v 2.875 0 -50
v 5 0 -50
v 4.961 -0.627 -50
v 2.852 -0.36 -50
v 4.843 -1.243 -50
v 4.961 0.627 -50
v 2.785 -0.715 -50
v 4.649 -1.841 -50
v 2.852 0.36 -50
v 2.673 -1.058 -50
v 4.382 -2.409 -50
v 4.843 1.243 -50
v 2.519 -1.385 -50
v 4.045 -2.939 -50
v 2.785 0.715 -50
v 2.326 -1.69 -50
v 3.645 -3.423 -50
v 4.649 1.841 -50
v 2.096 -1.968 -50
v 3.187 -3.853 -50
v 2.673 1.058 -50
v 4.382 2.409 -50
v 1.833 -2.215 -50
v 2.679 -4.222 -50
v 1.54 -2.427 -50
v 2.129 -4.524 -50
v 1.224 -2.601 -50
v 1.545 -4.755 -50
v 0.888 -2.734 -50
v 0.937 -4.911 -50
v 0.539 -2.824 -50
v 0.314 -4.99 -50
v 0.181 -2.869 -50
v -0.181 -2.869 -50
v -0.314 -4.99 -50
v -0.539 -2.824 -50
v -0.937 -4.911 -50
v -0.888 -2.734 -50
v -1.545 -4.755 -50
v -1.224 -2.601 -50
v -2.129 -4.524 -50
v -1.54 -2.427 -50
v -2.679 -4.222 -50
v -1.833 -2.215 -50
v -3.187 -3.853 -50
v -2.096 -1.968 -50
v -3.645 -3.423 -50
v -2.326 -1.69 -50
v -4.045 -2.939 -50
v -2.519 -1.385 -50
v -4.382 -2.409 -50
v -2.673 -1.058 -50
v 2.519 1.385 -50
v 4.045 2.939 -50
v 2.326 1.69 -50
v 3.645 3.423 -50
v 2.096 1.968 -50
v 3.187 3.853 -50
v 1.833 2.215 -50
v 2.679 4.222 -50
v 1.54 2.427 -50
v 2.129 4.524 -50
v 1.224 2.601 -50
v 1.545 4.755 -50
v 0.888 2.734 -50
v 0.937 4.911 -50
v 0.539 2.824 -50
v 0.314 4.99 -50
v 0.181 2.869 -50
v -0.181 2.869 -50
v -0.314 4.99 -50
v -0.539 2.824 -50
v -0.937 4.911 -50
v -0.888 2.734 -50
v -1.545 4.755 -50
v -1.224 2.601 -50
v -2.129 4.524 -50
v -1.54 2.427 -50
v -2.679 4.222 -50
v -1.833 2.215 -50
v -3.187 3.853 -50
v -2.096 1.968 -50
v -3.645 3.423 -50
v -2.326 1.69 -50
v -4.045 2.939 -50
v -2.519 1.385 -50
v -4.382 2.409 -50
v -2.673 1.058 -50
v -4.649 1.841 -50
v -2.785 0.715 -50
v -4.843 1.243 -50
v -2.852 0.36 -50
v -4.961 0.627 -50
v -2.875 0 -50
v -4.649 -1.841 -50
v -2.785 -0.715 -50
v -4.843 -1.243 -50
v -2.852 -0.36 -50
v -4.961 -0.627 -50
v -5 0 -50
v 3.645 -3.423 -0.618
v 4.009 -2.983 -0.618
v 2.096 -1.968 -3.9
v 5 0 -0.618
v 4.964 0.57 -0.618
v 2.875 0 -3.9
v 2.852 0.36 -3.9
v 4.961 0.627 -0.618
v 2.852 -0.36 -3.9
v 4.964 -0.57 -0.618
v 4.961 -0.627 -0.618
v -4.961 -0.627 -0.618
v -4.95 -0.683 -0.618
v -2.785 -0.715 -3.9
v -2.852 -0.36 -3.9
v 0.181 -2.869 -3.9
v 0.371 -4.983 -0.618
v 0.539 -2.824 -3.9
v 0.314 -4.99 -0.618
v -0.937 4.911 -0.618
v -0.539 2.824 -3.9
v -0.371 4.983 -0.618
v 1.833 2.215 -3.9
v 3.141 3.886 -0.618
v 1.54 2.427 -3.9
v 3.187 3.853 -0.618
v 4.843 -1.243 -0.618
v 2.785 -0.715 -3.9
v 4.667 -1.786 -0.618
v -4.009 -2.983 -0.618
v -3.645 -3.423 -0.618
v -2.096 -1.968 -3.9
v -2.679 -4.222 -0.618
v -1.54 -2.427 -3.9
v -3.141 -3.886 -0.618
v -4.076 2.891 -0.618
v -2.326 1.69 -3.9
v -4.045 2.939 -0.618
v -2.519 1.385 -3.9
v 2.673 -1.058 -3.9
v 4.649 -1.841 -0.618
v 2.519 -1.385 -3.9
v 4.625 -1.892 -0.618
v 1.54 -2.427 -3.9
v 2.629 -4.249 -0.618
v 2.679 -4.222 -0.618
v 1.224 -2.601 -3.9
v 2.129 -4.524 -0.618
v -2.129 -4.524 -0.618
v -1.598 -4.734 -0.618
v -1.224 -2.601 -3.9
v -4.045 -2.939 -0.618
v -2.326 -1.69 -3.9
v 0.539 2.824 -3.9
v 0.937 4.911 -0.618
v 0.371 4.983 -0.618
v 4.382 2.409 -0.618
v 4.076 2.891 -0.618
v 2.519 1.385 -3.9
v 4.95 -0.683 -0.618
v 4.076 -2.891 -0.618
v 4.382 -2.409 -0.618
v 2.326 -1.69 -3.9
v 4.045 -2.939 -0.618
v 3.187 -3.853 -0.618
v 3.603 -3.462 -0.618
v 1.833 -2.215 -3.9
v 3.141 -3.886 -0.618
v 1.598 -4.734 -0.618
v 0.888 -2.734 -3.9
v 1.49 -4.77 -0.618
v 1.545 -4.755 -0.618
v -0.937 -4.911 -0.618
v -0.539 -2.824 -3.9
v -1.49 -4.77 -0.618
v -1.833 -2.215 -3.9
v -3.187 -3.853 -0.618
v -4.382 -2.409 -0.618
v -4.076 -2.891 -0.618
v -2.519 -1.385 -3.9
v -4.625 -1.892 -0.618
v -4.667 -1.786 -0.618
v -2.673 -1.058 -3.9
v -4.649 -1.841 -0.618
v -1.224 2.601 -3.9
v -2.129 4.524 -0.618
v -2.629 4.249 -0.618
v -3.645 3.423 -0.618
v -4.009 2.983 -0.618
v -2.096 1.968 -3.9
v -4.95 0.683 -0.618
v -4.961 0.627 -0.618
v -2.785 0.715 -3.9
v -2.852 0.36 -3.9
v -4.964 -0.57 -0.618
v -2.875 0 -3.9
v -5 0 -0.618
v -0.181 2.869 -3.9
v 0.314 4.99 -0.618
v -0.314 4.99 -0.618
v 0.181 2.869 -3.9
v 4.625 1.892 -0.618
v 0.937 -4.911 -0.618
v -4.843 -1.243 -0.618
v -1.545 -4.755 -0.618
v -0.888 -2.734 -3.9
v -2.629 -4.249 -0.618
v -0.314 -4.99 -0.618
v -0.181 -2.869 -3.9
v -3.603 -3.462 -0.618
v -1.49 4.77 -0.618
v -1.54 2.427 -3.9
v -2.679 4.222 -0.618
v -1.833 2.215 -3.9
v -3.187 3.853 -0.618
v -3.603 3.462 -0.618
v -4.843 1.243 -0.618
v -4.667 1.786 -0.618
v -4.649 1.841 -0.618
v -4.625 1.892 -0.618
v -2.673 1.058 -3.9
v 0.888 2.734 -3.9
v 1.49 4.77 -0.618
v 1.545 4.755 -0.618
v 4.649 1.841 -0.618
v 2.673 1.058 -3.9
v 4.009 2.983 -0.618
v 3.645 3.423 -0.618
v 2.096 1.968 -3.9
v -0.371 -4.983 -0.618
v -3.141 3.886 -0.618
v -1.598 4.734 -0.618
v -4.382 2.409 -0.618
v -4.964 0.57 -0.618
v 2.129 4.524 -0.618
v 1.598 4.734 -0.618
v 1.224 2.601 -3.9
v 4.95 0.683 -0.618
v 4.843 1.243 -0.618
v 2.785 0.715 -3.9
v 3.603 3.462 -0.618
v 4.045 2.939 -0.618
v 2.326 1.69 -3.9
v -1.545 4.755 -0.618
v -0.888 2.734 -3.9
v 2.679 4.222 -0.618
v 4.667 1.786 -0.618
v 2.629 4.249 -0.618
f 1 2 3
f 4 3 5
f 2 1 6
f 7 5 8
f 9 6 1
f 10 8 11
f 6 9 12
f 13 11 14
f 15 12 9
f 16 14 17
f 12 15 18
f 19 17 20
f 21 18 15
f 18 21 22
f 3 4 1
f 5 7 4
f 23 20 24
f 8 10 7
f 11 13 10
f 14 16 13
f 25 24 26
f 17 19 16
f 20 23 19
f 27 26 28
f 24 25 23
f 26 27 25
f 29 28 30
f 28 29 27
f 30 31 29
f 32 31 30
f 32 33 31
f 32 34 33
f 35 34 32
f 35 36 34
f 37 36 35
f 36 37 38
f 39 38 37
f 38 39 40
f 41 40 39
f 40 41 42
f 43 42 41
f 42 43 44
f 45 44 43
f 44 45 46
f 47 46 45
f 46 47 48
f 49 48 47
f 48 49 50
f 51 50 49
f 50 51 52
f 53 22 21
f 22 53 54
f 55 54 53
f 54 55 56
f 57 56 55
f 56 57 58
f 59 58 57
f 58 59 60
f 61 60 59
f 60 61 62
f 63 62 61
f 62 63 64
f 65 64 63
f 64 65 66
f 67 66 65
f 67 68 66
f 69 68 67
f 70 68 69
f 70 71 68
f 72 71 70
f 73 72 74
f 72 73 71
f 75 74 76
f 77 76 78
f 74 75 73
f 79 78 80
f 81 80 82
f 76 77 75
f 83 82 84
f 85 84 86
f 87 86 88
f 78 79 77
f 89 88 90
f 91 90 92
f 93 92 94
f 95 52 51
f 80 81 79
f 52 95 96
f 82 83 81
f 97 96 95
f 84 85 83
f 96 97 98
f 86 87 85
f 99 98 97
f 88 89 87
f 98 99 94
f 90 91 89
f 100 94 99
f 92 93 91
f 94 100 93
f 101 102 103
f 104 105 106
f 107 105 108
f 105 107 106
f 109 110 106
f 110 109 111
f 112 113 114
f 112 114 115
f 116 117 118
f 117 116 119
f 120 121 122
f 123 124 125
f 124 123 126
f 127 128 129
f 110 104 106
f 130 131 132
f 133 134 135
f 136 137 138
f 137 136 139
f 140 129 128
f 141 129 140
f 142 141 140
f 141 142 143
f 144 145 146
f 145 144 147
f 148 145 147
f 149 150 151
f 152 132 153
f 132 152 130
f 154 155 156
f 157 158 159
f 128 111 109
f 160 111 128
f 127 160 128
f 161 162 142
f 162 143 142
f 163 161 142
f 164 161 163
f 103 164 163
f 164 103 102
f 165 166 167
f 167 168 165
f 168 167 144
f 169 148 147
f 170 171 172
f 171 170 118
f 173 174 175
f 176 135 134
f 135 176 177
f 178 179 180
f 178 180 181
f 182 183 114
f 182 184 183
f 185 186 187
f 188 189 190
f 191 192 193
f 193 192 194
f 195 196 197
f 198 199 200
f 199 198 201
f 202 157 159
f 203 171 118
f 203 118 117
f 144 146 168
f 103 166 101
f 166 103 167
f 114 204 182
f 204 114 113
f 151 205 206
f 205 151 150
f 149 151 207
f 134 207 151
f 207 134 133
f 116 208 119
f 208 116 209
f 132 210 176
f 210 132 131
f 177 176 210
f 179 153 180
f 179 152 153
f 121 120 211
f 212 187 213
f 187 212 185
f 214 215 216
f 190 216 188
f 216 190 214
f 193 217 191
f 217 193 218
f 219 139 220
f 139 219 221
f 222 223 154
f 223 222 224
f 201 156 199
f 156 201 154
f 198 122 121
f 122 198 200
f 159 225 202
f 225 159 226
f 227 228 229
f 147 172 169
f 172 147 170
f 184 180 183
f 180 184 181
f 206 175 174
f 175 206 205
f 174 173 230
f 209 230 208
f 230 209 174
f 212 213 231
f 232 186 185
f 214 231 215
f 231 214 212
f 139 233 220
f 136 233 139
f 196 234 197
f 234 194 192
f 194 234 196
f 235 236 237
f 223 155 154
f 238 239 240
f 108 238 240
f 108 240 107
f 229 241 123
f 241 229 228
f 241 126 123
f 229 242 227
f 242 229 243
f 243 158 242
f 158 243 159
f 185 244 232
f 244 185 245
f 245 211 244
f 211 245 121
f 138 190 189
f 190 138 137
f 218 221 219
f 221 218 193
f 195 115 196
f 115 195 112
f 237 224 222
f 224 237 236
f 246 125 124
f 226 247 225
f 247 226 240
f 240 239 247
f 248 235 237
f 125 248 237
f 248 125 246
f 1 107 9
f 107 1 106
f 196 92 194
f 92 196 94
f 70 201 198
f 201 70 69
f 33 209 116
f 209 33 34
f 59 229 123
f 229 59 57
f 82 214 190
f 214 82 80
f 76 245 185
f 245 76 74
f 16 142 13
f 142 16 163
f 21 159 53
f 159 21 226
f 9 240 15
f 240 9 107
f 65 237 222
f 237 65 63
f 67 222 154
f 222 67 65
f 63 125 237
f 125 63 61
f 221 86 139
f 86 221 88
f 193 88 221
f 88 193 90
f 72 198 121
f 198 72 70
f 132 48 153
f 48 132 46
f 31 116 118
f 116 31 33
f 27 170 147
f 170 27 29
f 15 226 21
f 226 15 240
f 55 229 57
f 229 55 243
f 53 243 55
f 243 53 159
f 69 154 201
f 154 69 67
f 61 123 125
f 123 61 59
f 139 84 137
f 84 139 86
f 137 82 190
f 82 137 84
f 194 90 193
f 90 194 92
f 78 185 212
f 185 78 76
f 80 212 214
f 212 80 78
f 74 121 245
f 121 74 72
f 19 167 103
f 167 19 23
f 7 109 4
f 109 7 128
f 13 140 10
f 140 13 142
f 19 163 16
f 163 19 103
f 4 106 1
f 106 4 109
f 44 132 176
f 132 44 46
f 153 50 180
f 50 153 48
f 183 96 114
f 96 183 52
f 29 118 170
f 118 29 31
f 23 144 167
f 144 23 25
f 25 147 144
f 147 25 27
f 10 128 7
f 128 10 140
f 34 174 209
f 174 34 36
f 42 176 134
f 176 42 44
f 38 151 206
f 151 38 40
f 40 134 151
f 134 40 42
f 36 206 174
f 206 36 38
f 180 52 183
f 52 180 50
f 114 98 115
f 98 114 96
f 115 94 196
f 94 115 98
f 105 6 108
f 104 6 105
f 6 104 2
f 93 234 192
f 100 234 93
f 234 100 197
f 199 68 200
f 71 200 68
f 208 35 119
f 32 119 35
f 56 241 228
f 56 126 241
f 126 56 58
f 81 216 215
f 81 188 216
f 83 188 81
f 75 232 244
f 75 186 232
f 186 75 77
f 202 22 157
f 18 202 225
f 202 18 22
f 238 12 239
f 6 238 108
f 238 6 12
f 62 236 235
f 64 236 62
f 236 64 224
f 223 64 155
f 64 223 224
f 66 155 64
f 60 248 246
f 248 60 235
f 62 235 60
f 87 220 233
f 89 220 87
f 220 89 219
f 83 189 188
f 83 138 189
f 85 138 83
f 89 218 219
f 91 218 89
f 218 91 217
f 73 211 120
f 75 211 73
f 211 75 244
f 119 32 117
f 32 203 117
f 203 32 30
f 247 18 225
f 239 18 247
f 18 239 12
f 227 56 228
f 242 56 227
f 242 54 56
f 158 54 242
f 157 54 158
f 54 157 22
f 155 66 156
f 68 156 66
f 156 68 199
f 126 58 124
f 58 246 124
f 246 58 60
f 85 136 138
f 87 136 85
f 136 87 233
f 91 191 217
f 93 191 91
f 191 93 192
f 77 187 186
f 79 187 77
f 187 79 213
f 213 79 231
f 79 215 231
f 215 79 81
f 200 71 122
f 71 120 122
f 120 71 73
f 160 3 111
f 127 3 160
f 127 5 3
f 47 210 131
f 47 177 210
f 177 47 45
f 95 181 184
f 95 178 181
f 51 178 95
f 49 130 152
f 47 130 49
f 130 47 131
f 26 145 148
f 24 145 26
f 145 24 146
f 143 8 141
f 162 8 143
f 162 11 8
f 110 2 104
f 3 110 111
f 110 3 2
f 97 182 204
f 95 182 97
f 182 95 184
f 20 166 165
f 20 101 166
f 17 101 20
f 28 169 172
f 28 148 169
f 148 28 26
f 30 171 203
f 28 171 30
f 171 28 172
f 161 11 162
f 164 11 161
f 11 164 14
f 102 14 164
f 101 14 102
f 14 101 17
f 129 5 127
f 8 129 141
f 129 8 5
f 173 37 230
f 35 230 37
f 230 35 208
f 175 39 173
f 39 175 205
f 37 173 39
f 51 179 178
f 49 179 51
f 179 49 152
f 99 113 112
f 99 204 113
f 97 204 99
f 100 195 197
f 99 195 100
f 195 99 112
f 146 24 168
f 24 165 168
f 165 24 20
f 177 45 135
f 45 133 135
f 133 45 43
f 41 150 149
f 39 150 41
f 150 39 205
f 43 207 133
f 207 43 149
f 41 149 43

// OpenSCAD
$fn = 50;


difference() {
	union() {
		translate(v = [0, 0, -50.0000000000]) {
			cylinder(h = 50, r = 5.0000000000);
		}
		cylinder(h = 0, r = 8.0000000000);
	}
	union() {
		translate(v = [0, 0, 0]) {
			rotate(a = [0, 0, 0]) {
				difference() {
					union() {
						#translate(v = [0, 0, -50.0000000000]) {
							cylinder(h = 50, r = 2.6000000000);
						}
						#translate(v = [0, 0, -3.9000000000]) {
							cylinder(h = 3.9000000000, r1 = 2.8750000000, r2 = 5.4000000000);
						}
						#translate(v = [0, 0, -50.0000000000]) {
							cylinder(h = 50, r = 2.8750000000);
						}
						#translate(v = [0, 0, -50.0000000000]) {
							cylinder(h = 50, r = 2.6000000000);
						}
					}
					union();
				}
			}
		}
	}
}
